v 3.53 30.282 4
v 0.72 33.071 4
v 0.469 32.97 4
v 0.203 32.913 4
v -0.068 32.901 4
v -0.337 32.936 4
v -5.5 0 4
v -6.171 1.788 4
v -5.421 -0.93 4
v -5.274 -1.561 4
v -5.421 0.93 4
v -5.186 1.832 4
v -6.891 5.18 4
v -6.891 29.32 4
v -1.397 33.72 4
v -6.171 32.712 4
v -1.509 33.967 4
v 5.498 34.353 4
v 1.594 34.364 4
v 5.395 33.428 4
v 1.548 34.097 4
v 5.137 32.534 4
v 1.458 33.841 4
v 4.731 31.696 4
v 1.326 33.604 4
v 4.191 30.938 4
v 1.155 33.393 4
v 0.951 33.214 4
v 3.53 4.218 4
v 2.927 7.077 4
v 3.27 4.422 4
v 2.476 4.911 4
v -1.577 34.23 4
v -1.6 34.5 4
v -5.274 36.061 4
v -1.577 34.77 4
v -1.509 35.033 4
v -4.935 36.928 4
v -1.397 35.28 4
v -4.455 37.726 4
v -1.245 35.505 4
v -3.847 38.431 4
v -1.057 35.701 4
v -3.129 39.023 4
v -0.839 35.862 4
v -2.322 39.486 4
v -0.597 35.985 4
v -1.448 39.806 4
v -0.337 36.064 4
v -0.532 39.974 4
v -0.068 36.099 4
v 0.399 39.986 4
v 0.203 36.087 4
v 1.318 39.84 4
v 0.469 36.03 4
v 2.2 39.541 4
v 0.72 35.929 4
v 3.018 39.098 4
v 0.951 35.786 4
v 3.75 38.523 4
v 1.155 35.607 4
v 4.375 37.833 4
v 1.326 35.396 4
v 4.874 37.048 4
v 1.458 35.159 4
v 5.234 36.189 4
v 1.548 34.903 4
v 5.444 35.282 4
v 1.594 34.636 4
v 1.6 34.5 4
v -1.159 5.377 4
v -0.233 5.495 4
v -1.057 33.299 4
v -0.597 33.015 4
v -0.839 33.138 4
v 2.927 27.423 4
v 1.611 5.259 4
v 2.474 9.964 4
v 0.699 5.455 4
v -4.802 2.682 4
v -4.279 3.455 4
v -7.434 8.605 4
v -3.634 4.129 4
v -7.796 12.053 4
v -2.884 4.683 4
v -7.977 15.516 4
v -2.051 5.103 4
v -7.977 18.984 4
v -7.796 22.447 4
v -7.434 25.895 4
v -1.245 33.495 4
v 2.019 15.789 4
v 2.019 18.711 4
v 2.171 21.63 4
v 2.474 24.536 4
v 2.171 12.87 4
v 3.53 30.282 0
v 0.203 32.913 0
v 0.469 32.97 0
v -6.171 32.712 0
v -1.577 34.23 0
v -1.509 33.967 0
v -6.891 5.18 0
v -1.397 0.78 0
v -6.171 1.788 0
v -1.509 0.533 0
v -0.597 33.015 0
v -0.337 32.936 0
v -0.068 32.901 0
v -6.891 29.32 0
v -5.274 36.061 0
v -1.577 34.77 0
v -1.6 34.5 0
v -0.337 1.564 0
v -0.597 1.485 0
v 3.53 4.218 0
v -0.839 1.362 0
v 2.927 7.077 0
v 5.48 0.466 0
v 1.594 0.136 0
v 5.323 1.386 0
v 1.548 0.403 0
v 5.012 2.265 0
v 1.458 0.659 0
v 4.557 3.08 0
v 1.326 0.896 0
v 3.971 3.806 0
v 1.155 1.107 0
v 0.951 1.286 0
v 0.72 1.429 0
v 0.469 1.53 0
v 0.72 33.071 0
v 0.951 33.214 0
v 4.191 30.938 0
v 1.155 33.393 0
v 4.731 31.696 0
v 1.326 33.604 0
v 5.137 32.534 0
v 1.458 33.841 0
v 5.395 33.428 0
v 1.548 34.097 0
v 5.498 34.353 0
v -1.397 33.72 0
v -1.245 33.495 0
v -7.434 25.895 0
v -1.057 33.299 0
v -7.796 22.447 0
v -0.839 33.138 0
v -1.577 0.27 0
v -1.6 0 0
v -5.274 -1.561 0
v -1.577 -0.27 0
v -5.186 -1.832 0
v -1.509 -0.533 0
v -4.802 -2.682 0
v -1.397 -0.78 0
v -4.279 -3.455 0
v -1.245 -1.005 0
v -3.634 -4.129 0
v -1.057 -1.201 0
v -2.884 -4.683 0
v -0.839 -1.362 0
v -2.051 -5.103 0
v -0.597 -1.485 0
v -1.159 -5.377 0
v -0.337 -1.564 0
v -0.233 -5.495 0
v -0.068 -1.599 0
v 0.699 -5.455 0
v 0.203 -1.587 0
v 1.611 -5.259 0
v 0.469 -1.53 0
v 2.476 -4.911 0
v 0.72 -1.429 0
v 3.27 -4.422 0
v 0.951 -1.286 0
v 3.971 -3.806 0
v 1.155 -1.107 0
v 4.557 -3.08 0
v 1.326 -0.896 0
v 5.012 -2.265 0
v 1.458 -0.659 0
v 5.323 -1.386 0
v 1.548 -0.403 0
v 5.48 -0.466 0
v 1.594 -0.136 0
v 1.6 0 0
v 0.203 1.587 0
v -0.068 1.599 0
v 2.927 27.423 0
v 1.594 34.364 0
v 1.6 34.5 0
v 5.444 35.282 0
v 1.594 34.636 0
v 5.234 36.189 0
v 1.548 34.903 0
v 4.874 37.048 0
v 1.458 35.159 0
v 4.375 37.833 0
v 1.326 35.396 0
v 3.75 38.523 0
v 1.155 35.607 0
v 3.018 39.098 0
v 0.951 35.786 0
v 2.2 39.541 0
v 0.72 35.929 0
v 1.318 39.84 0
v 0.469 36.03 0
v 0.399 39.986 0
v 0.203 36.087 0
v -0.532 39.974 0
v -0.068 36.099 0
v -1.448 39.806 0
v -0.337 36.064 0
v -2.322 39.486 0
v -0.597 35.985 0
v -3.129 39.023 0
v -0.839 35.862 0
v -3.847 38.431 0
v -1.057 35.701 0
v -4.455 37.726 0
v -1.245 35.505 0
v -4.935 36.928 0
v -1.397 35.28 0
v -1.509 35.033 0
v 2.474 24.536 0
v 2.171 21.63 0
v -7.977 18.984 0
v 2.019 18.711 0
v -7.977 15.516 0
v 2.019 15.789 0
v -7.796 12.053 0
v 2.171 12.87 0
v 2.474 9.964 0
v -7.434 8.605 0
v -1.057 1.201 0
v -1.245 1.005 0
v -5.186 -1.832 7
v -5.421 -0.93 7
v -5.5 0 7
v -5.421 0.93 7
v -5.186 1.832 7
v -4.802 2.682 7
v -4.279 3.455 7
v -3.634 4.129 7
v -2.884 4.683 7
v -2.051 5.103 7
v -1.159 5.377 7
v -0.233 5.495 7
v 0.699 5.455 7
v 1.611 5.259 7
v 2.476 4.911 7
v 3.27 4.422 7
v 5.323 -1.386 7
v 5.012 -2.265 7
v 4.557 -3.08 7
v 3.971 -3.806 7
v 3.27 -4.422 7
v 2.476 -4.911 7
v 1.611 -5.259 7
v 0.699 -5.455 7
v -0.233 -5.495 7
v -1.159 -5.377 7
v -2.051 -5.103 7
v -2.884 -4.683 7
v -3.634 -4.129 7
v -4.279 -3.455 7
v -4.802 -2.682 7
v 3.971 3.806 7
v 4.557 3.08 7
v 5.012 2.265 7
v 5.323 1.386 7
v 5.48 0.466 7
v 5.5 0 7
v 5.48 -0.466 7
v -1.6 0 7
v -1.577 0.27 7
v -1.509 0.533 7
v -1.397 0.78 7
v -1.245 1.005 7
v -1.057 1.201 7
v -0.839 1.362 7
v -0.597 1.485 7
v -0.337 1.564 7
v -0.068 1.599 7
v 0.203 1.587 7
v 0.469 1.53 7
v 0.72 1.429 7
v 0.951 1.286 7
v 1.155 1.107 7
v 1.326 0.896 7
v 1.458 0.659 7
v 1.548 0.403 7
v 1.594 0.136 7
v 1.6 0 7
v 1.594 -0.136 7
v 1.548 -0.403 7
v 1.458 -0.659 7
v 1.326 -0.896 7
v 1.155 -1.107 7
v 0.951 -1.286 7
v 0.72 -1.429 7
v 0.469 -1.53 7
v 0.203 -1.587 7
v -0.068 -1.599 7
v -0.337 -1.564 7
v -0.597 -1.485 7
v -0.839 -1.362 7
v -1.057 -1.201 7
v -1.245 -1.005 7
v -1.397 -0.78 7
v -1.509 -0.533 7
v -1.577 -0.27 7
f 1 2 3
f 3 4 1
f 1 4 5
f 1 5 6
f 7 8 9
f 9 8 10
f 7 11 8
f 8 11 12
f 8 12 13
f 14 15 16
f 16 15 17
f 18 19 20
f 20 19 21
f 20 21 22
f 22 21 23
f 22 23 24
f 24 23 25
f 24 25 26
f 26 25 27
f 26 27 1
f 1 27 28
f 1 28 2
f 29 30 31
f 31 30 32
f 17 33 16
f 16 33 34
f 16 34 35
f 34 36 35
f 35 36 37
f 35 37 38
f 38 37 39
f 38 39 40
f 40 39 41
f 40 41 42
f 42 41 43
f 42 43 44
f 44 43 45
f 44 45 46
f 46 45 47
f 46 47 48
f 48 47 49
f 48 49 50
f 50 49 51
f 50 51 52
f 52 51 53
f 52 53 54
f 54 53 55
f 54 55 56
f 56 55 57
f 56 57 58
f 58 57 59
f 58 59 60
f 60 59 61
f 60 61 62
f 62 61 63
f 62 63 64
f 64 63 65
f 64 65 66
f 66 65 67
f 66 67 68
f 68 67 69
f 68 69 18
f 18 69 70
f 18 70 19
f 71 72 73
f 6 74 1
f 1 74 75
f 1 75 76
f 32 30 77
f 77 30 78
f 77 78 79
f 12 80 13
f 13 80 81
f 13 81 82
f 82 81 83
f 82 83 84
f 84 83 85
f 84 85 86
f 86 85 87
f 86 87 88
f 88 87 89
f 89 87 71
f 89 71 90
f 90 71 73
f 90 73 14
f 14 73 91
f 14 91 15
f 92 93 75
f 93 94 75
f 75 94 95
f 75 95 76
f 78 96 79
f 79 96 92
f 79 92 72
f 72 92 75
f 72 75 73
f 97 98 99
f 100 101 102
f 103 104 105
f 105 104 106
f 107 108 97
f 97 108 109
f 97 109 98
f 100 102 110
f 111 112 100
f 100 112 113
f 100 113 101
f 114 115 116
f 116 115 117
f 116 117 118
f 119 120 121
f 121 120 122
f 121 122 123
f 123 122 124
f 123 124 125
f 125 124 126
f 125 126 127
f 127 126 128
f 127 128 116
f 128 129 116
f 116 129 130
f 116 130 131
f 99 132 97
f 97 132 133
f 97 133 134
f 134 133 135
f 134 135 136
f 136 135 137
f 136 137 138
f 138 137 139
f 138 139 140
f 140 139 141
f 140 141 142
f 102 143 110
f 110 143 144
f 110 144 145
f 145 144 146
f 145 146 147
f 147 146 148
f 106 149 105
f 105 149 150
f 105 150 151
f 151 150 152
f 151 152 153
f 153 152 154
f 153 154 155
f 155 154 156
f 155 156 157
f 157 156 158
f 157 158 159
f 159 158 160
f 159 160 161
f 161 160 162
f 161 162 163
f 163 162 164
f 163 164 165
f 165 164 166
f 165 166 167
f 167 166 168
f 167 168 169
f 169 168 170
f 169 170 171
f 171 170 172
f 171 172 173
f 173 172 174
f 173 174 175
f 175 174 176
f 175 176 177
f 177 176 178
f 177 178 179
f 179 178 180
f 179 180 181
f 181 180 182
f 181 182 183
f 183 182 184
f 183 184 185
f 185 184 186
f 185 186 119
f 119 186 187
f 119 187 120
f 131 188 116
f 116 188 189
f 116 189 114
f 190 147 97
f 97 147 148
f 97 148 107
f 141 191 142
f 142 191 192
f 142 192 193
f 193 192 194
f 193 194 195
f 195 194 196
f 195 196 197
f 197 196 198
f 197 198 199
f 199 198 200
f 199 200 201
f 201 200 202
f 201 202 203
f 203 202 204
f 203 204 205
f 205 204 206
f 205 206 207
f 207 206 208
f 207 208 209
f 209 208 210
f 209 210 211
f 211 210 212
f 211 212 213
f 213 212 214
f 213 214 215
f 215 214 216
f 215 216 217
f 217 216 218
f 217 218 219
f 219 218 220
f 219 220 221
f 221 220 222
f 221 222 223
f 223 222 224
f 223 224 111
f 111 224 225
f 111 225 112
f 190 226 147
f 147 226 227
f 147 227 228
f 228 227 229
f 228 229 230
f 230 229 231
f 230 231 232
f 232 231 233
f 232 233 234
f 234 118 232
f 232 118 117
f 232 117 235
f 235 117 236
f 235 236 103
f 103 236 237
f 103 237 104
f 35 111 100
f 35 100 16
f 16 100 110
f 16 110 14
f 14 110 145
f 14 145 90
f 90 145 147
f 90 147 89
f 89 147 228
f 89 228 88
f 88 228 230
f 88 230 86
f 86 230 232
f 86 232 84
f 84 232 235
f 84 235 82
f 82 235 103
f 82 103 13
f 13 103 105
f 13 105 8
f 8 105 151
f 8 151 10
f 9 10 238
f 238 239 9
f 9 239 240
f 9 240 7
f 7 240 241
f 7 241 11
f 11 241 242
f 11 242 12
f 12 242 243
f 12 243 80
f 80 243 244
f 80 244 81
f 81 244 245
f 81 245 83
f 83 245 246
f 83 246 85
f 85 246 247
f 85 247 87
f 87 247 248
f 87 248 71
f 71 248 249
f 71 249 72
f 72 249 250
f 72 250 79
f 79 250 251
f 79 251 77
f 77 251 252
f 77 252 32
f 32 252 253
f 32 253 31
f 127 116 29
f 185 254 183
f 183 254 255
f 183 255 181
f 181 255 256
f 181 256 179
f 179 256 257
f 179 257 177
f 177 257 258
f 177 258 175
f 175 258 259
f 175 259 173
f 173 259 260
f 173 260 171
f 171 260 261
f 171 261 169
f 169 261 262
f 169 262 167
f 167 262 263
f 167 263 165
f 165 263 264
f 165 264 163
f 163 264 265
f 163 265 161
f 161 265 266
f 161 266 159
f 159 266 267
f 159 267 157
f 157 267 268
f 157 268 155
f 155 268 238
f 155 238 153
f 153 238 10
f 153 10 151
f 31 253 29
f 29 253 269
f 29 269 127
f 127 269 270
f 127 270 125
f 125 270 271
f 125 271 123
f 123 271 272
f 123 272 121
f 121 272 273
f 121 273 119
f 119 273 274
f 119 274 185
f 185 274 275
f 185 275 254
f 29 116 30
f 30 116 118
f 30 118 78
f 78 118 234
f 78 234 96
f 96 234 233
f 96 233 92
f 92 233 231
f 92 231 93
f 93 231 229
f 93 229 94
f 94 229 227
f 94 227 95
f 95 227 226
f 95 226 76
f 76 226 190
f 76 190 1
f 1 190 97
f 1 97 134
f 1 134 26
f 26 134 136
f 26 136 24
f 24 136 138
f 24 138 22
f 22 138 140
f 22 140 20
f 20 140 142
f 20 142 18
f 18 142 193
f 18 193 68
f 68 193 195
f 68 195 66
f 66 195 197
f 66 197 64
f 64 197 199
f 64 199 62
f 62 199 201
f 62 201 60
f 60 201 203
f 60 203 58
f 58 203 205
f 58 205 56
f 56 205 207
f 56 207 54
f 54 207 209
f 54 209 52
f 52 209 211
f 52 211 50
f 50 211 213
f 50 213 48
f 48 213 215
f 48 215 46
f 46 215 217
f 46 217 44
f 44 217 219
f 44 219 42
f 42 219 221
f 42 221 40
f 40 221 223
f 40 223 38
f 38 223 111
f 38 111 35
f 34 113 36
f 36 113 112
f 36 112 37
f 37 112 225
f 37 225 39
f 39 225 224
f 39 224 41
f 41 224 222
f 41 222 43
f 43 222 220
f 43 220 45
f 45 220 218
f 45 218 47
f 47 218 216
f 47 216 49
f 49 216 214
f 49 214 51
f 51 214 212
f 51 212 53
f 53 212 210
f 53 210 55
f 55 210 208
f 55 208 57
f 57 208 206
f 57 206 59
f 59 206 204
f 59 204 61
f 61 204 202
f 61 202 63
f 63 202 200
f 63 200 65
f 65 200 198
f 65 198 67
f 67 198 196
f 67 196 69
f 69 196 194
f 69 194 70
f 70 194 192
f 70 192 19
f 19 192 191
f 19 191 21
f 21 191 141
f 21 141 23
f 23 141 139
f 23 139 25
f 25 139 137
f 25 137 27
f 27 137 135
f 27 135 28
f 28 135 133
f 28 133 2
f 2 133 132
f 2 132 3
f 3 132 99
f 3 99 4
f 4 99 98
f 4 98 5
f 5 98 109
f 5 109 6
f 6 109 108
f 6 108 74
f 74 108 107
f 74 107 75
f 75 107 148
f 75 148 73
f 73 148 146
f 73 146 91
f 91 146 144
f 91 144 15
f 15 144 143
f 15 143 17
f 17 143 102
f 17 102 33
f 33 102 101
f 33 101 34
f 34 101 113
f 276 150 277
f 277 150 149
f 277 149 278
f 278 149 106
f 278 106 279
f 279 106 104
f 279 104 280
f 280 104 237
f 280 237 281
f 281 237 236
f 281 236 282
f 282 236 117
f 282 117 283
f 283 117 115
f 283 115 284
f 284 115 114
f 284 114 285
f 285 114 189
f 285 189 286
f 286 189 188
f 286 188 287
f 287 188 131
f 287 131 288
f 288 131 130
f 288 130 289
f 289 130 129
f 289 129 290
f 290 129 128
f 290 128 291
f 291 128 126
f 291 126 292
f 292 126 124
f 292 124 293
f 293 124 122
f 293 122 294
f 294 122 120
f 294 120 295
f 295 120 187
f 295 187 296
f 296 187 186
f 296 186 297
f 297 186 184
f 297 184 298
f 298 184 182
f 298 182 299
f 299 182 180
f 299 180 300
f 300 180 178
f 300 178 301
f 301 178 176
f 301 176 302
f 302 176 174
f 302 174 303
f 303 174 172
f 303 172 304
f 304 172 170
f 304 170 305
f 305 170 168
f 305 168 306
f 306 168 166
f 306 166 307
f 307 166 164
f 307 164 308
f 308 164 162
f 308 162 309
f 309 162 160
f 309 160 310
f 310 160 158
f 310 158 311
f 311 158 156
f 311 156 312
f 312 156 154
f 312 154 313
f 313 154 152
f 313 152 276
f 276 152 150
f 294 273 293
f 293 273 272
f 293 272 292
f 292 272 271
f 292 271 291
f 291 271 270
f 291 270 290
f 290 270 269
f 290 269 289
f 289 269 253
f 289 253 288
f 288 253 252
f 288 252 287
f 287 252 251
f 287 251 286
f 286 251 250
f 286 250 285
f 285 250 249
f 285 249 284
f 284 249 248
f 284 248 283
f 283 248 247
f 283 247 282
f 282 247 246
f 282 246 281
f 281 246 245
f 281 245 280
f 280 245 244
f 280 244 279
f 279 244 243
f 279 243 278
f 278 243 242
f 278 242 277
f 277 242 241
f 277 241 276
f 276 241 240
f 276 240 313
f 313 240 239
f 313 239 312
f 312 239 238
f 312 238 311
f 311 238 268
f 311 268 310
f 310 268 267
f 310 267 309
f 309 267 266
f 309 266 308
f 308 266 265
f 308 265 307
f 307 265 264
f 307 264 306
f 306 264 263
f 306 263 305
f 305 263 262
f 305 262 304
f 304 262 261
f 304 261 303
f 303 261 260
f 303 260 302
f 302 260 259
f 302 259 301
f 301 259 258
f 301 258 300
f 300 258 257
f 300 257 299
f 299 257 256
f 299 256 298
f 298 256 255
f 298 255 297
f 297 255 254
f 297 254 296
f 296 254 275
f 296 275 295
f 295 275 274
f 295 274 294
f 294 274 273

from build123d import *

# Parameters (mm, degrees)
IZIM1_R                     = 1.6
Y_KSEKLIK_EKSTR_ZYON1_DEPTH = 4
IZIM2_R                     = 5.5
IZIM2_R_2                   = 1.6
Y_KSEKLIK_EKSTR_ZYON2_DEPTH = 3


with BuildPart() as part:
    # Çizim1 → Yükseklik-Ekstrüzyon1 (new body)
    with BuildSketch(Plane.XY):
        with BuildLine():
            ThreePointArc((-5.273709113, -1.561407118), (3.018112795, -4.597933792), (3.530207231, 4.2175392))
            ThreePointArc((3.530207231, 4.2175392), (2, 17.25), (3.530207231, 30.2824608))
            ThreePointArc((3.530207231, 30.2824608), (3.018112795, 39.097933792), (-5.273709113, 36.061407118))
            ThreePointArc((-5.273709113, 36.061407118), (-8, 17.25), (-5.273709113, -1.561407118))
        make_face()
        with Locations((0, 34.5)):
            Circle(IZIM1_R, mode=Mode.SUBTRACT)
        Circle(IZIM1_R, mode=Mode.SUBTRACT)
    extrude(amount=Y_KSEKLIK_EKSTR_ZYON1_DEPTH)

    # Çizim2 → Yükseklik-Ekstrüzyon2 (add)
    with BuildSketch(Plane.XY.offset(4)):
        with Locations(Location((0, 0, 0), (0, 0, 196.492641629))):
            Circle(IZIM2_R)
        Circle(IZIM2_R_2, mode=Mode.SUBTRACT)
    extrude(amount=Y_KSEKLIK_EKSTR_ZYON2_DEPTH)


solid = part.part
